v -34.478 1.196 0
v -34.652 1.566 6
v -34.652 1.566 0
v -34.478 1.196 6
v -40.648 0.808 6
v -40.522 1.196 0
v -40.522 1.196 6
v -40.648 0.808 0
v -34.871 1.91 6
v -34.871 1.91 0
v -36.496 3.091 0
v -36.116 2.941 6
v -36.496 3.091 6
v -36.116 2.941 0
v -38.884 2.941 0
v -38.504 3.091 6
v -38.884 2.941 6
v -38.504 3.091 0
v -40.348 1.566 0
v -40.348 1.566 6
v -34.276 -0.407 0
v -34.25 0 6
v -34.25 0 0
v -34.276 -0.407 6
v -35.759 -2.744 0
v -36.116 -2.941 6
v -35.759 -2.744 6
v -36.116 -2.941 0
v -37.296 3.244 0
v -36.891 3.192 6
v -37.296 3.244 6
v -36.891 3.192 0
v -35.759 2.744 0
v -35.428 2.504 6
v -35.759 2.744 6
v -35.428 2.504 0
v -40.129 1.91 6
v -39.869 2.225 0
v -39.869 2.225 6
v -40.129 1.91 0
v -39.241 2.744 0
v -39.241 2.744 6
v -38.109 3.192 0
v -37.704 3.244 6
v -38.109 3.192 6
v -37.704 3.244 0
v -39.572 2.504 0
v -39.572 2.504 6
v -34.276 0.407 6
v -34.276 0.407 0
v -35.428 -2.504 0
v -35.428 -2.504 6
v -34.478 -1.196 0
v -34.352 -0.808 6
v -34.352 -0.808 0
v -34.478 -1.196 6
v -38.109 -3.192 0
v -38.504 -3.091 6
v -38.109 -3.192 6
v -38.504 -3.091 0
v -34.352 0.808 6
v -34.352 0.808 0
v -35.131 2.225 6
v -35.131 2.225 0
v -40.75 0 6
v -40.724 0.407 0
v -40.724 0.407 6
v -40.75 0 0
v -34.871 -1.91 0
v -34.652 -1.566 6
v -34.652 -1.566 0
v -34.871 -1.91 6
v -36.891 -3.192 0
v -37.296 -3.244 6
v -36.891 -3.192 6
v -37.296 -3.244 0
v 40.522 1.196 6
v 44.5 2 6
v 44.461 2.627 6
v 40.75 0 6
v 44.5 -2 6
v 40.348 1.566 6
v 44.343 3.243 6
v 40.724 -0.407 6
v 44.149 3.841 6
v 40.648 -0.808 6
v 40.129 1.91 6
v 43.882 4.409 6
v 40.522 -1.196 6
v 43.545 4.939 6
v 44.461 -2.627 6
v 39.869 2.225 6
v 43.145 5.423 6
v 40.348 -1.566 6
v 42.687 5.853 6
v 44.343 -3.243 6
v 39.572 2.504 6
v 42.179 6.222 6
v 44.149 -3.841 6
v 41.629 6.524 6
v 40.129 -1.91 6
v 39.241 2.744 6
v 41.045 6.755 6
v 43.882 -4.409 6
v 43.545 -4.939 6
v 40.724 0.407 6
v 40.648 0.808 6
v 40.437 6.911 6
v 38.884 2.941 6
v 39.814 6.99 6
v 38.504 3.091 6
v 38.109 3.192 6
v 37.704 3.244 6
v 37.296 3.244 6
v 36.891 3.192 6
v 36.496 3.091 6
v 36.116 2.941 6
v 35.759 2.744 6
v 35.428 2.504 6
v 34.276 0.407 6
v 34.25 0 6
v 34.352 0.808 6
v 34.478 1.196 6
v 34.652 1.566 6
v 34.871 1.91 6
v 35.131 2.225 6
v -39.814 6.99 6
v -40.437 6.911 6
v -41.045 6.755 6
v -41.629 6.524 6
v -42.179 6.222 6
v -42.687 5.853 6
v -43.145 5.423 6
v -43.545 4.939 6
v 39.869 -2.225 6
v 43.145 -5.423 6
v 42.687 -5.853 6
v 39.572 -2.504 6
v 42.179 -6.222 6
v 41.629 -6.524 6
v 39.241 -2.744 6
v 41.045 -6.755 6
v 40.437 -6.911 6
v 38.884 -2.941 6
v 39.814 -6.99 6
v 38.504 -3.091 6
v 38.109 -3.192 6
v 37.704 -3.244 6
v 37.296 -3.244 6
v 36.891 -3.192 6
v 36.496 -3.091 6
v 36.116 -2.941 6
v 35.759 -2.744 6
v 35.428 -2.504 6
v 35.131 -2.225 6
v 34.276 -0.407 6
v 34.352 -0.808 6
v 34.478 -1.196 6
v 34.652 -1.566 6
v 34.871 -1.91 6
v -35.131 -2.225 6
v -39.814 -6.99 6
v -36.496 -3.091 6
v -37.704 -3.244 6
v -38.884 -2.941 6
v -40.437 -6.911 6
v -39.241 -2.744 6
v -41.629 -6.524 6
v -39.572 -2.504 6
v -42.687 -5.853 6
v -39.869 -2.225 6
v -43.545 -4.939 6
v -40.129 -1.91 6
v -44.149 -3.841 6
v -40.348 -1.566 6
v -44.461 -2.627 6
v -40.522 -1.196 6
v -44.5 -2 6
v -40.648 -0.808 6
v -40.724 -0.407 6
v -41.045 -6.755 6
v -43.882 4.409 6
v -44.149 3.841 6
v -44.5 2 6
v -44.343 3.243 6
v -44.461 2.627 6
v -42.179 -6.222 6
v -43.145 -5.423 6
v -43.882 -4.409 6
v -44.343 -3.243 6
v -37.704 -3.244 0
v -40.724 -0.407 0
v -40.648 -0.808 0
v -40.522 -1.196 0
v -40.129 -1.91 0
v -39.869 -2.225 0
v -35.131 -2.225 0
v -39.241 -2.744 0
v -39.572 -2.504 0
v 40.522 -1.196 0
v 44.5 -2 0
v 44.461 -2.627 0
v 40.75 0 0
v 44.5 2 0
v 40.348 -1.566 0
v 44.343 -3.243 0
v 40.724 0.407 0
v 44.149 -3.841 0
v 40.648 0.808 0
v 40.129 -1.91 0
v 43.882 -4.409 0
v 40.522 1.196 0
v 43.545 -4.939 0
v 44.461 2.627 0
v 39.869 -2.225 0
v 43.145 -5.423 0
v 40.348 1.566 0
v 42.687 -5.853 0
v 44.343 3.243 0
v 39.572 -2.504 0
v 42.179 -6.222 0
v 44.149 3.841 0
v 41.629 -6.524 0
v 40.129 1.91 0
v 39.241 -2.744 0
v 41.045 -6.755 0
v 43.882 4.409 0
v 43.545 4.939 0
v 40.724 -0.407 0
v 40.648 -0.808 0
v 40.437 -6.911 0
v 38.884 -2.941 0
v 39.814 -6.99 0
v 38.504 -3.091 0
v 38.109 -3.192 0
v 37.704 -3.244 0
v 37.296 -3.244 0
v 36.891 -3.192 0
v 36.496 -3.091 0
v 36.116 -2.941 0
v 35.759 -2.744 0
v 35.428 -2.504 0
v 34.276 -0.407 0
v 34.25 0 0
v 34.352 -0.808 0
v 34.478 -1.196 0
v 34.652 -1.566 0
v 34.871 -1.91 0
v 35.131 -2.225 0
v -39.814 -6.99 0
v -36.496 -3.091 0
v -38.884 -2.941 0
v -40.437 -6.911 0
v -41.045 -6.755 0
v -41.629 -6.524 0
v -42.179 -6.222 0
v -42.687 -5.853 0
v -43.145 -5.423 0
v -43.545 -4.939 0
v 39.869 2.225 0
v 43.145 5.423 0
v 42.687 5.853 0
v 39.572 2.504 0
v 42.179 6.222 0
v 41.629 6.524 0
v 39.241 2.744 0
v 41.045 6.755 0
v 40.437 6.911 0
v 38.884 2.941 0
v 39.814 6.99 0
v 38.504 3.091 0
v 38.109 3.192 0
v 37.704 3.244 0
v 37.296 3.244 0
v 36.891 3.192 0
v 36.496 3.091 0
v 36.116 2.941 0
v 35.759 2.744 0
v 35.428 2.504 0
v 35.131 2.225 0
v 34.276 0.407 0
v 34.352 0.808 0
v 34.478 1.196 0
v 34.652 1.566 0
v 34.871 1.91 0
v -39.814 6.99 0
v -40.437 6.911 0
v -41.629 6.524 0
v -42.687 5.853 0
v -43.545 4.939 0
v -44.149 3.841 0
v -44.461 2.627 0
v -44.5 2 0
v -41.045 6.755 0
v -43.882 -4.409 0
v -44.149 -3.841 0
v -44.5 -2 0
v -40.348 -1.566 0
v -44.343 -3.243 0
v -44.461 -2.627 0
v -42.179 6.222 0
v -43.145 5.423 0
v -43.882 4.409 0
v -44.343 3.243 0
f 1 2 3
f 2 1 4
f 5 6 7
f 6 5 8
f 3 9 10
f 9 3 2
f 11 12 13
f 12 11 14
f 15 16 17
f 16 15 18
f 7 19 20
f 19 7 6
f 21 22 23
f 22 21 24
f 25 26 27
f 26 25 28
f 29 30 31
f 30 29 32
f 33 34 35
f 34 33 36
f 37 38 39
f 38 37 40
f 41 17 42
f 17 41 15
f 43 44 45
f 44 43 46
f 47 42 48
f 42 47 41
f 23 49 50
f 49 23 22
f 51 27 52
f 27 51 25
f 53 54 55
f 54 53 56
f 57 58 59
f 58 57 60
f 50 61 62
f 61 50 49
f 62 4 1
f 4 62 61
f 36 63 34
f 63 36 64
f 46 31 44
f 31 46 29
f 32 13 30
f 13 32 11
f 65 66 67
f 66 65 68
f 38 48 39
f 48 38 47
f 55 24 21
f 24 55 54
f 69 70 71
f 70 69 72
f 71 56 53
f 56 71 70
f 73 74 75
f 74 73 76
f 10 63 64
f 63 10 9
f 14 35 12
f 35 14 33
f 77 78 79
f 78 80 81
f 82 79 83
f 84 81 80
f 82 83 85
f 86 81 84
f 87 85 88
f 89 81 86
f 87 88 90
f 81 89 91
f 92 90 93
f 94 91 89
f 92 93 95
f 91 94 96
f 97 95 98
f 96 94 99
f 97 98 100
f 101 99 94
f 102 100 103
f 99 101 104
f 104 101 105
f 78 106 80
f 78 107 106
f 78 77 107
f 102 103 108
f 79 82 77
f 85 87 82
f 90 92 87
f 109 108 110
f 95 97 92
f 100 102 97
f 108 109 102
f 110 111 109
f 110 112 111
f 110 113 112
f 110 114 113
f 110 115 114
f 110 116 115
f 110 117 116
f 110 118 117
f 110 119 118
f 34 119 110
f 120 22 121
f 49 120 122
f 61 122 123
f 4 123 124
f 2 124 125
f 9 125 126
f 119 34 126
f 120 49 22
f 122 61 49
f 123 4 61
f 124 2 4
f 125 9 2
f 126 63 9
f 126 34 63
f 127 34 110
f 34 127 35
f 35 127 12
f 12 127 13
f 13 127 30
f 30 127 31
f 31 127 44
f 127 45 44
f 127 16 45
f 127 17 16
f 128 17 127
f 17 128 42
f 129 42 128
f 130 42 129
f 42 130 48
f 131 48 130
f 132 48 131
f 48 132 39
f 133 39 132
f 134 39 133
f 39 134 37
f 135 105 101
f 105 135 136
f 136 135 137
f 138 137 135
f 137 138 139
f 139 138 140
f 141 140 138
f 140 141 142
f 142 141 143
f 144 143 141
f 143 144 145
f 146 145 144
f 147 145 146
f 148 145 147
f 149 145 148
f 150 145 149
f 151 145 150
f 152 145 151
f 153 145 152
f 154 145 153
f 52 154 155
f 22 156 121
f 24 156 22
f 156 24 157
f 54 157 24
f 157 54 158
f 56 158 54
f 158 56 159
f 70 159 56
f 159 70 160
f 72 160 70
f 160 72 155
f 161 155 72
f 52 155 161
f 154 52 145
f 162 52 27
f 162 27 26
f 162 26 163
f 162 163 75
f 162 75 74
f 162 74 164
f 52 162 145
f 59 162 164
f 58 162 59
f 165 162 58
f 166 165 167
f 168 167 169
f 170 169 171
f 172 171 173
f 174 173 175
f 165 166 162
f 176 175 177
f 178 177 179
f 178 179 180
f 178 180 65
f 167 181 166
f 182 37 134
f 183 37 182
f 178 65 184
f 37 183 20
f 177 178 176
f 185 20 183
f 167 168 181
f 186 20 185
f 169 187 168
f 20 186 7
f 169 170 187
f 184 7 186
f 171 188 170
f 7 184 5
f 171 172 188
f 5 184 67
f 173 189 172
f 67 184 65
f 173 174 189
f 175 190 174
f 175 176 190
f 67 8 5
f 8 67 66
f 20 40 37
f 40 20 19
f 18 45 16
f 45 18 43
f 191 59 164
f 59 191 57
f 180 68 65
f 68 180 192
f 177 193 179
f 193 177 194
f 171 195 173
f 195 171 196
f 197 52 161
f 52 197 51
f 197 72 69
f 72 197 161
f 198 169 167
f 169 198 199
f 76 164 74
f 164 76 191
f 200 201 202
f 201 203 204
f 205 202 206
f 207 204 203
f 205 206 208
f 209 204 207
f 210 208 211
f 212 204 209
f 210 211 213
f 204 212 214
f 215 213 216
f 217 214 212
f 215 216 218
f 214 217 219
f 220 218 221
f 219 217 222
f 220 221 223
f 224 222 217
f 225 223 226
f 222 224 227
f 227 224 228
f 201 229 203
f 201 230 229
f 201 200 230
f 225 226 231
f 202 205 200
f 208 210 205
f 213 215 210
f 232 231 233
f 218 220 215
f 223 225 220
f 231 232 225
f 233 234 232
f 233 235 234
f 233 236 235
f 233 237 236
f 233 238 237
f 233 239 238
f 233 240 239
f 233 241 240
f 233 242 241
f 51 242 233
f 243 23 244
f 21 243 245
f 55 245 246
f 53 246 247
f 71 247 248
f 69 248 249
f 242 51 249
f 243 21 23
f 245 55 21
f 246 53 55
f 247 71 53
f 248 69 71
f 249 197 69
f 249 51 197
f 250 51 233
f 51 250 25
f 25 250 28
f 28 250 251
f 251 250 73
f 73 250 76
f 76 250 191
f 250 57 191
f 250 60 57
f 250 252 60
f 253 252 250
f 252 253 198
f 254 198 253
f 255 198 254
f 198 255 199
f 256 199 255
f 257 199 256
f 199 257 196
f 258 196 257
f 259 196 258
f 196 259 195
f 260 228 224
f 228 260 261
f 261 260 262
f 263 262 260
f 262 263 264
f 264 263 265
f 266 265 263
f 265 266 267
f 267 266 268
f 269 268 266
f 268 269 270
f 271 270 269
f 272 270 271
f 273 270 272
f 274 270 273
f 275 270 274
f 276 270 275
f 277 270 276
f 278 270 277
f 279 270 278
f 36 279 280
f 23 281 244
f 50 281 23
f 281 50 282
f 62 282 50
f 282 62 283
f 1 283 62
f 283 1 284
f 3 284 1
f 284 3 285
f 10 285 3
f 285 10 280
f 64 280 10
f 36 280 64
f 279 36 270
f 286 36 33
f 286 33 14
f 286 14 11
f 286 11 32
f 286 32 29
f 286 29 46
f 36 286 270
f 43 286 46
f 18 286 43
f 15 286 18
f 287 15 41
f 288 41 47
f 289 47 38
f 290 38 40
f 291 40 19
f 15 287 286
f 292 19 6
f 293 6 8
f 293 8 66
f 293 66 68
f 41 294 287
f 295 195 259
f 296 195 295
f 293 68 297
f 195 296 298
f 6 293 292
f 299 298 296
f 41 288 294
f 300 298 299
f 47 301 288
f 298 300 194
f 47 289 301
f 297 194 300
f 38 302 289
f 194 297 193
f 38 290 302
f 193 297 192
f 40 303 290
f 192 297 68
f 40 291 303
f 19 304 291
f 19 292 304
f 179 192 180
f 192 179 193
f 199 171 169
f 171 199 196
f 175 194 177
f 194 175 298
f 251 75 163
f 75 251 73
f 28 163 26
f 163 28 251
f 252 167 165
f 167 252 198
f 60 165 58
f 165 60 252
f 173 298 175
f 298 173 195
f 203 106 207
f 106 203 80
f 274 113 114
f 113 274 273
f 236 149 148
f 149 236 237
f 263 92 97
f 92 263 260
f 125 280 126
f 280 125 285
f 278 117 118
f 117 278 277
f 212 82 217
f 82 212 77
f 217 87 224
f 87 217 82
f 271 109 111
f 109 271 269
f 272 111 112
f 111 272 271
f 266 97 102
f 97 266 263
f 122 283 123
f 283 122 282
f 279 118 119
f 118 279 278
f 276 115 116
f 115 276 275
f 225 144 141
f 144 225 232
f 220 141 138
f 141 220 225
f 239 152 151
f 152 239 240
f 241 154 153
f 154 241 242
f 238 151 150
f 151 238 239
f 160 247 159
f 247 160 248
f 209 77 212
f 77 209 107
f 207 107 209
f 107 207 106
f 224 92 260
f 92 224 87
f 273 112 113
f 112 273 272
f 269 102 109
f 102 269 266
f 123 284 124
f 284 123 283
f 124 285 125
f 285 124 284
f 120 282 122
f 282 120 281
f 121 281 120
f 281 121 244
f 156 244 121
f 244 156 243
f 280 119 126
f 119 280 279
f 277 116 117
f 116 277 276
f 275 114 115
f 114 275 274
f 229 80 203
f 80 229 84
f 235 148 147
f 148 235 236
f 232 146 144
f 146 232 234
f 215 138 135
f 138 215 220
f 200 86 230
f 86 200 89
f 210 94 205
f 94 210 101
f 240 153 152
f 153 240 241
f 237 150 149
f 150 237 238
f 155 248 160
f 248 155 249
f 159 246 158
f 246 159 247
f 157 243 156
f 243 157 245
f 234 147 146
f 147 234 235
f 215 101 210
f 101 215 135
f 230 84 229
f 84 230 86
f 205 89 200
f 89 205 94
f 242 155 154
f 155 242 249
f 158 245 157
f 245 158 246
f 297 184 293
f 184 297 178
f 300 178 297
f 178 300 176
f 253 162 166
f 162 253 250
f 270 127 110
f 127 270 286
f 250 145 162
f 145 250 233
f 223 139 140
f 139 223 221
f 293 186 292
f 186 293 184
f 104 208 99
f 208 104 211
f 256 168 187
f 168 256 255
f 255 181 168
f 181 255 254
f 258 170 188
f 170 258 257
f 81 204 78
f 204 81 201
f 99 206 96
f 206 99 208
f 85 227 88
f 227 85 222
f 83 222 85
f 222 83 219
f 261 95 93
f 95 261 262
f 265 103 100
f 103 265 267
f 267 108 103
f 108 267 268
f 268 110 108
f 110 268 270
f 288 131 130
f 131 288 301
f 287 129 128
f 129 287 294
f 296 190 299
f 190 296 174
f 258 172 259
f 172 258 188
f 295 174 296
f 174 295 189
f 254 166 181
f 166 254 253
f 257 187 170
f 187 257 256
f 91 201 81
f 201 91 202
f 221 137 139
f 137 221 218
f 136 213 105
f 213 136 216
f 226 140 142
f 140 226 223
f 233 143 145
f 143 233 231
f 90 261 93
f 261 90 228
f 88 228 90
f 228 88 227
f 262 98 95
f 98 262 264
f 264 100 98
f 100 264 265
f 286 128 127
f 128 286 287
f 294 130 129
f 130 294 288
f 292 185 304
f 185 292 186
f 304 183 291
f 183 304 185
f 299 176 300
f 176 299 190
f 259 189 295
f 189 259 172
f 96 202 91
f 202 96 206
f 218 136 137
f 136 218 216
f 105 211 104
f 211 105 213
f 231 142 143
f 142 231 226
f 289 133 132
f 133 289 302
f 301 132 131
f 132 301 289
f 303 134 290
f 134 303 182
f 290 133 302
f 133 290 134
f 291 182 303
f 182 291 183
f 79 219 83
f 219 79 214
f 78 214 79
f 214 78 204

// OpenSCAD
$fn = 50;


difference() {
	union() {
		hull() {
			translate(v = [-39.5000000000, 2.0000000000, 0]) {
				cylinder(h = 6, r = 5);
			}
			translate(v = [39.5000000000, 2.0000000000, 0]) {
				cylinder(h = 6, r = 5);
			}
			translate(v = [-39.5000000000, -2.0000000000, 0]) {
				cylinder(h = 6, r = 5);
			}
			translate(v = [39.5000000000, -2.0000000000, 0]) {
				cylinder(h = 6, r = 5);
			}
		}
	}
	union() {
		translate(v = [-37.5000000000, 0.0000000000, 0]) {
			cylinder(h = 6, r = 3.2500000000);
		}
		translate(v = [37.5000000000, 0.0000000000, 0]) {
			cylinder(h = 6, r = 3.2500000000);
		}
		translate(v = [-37.5000000000, 0.0000000000, 0]) {
			cylinder(h = 6, r = 1.8000000000);
		}
		translate(v = [37.5000000000, 0.0000000000, 0]) {
			cylinder(h = 6, r = 1.8000000000);
		}
		translate(v = [-37.5000000000, 0.0000000000, 0]) {
			cylinder(h = 6, r = 1.8000000000);
		}
		translate(v = [37.5000000000, 0.0000000000, 0]) {
			cylinder(h = 6, r = 1.8000000000);
		}
		translate(v = [-37.5000000000, 0.0000000000, 0]) {
			cylinder(h = 6, r = 1.8000000000);
		}
		translate(v = [37.5000000000, 0.0000000000, 0]) {
			cylinder(h = 6, r = 1.8000000000);
		}
	}
}
